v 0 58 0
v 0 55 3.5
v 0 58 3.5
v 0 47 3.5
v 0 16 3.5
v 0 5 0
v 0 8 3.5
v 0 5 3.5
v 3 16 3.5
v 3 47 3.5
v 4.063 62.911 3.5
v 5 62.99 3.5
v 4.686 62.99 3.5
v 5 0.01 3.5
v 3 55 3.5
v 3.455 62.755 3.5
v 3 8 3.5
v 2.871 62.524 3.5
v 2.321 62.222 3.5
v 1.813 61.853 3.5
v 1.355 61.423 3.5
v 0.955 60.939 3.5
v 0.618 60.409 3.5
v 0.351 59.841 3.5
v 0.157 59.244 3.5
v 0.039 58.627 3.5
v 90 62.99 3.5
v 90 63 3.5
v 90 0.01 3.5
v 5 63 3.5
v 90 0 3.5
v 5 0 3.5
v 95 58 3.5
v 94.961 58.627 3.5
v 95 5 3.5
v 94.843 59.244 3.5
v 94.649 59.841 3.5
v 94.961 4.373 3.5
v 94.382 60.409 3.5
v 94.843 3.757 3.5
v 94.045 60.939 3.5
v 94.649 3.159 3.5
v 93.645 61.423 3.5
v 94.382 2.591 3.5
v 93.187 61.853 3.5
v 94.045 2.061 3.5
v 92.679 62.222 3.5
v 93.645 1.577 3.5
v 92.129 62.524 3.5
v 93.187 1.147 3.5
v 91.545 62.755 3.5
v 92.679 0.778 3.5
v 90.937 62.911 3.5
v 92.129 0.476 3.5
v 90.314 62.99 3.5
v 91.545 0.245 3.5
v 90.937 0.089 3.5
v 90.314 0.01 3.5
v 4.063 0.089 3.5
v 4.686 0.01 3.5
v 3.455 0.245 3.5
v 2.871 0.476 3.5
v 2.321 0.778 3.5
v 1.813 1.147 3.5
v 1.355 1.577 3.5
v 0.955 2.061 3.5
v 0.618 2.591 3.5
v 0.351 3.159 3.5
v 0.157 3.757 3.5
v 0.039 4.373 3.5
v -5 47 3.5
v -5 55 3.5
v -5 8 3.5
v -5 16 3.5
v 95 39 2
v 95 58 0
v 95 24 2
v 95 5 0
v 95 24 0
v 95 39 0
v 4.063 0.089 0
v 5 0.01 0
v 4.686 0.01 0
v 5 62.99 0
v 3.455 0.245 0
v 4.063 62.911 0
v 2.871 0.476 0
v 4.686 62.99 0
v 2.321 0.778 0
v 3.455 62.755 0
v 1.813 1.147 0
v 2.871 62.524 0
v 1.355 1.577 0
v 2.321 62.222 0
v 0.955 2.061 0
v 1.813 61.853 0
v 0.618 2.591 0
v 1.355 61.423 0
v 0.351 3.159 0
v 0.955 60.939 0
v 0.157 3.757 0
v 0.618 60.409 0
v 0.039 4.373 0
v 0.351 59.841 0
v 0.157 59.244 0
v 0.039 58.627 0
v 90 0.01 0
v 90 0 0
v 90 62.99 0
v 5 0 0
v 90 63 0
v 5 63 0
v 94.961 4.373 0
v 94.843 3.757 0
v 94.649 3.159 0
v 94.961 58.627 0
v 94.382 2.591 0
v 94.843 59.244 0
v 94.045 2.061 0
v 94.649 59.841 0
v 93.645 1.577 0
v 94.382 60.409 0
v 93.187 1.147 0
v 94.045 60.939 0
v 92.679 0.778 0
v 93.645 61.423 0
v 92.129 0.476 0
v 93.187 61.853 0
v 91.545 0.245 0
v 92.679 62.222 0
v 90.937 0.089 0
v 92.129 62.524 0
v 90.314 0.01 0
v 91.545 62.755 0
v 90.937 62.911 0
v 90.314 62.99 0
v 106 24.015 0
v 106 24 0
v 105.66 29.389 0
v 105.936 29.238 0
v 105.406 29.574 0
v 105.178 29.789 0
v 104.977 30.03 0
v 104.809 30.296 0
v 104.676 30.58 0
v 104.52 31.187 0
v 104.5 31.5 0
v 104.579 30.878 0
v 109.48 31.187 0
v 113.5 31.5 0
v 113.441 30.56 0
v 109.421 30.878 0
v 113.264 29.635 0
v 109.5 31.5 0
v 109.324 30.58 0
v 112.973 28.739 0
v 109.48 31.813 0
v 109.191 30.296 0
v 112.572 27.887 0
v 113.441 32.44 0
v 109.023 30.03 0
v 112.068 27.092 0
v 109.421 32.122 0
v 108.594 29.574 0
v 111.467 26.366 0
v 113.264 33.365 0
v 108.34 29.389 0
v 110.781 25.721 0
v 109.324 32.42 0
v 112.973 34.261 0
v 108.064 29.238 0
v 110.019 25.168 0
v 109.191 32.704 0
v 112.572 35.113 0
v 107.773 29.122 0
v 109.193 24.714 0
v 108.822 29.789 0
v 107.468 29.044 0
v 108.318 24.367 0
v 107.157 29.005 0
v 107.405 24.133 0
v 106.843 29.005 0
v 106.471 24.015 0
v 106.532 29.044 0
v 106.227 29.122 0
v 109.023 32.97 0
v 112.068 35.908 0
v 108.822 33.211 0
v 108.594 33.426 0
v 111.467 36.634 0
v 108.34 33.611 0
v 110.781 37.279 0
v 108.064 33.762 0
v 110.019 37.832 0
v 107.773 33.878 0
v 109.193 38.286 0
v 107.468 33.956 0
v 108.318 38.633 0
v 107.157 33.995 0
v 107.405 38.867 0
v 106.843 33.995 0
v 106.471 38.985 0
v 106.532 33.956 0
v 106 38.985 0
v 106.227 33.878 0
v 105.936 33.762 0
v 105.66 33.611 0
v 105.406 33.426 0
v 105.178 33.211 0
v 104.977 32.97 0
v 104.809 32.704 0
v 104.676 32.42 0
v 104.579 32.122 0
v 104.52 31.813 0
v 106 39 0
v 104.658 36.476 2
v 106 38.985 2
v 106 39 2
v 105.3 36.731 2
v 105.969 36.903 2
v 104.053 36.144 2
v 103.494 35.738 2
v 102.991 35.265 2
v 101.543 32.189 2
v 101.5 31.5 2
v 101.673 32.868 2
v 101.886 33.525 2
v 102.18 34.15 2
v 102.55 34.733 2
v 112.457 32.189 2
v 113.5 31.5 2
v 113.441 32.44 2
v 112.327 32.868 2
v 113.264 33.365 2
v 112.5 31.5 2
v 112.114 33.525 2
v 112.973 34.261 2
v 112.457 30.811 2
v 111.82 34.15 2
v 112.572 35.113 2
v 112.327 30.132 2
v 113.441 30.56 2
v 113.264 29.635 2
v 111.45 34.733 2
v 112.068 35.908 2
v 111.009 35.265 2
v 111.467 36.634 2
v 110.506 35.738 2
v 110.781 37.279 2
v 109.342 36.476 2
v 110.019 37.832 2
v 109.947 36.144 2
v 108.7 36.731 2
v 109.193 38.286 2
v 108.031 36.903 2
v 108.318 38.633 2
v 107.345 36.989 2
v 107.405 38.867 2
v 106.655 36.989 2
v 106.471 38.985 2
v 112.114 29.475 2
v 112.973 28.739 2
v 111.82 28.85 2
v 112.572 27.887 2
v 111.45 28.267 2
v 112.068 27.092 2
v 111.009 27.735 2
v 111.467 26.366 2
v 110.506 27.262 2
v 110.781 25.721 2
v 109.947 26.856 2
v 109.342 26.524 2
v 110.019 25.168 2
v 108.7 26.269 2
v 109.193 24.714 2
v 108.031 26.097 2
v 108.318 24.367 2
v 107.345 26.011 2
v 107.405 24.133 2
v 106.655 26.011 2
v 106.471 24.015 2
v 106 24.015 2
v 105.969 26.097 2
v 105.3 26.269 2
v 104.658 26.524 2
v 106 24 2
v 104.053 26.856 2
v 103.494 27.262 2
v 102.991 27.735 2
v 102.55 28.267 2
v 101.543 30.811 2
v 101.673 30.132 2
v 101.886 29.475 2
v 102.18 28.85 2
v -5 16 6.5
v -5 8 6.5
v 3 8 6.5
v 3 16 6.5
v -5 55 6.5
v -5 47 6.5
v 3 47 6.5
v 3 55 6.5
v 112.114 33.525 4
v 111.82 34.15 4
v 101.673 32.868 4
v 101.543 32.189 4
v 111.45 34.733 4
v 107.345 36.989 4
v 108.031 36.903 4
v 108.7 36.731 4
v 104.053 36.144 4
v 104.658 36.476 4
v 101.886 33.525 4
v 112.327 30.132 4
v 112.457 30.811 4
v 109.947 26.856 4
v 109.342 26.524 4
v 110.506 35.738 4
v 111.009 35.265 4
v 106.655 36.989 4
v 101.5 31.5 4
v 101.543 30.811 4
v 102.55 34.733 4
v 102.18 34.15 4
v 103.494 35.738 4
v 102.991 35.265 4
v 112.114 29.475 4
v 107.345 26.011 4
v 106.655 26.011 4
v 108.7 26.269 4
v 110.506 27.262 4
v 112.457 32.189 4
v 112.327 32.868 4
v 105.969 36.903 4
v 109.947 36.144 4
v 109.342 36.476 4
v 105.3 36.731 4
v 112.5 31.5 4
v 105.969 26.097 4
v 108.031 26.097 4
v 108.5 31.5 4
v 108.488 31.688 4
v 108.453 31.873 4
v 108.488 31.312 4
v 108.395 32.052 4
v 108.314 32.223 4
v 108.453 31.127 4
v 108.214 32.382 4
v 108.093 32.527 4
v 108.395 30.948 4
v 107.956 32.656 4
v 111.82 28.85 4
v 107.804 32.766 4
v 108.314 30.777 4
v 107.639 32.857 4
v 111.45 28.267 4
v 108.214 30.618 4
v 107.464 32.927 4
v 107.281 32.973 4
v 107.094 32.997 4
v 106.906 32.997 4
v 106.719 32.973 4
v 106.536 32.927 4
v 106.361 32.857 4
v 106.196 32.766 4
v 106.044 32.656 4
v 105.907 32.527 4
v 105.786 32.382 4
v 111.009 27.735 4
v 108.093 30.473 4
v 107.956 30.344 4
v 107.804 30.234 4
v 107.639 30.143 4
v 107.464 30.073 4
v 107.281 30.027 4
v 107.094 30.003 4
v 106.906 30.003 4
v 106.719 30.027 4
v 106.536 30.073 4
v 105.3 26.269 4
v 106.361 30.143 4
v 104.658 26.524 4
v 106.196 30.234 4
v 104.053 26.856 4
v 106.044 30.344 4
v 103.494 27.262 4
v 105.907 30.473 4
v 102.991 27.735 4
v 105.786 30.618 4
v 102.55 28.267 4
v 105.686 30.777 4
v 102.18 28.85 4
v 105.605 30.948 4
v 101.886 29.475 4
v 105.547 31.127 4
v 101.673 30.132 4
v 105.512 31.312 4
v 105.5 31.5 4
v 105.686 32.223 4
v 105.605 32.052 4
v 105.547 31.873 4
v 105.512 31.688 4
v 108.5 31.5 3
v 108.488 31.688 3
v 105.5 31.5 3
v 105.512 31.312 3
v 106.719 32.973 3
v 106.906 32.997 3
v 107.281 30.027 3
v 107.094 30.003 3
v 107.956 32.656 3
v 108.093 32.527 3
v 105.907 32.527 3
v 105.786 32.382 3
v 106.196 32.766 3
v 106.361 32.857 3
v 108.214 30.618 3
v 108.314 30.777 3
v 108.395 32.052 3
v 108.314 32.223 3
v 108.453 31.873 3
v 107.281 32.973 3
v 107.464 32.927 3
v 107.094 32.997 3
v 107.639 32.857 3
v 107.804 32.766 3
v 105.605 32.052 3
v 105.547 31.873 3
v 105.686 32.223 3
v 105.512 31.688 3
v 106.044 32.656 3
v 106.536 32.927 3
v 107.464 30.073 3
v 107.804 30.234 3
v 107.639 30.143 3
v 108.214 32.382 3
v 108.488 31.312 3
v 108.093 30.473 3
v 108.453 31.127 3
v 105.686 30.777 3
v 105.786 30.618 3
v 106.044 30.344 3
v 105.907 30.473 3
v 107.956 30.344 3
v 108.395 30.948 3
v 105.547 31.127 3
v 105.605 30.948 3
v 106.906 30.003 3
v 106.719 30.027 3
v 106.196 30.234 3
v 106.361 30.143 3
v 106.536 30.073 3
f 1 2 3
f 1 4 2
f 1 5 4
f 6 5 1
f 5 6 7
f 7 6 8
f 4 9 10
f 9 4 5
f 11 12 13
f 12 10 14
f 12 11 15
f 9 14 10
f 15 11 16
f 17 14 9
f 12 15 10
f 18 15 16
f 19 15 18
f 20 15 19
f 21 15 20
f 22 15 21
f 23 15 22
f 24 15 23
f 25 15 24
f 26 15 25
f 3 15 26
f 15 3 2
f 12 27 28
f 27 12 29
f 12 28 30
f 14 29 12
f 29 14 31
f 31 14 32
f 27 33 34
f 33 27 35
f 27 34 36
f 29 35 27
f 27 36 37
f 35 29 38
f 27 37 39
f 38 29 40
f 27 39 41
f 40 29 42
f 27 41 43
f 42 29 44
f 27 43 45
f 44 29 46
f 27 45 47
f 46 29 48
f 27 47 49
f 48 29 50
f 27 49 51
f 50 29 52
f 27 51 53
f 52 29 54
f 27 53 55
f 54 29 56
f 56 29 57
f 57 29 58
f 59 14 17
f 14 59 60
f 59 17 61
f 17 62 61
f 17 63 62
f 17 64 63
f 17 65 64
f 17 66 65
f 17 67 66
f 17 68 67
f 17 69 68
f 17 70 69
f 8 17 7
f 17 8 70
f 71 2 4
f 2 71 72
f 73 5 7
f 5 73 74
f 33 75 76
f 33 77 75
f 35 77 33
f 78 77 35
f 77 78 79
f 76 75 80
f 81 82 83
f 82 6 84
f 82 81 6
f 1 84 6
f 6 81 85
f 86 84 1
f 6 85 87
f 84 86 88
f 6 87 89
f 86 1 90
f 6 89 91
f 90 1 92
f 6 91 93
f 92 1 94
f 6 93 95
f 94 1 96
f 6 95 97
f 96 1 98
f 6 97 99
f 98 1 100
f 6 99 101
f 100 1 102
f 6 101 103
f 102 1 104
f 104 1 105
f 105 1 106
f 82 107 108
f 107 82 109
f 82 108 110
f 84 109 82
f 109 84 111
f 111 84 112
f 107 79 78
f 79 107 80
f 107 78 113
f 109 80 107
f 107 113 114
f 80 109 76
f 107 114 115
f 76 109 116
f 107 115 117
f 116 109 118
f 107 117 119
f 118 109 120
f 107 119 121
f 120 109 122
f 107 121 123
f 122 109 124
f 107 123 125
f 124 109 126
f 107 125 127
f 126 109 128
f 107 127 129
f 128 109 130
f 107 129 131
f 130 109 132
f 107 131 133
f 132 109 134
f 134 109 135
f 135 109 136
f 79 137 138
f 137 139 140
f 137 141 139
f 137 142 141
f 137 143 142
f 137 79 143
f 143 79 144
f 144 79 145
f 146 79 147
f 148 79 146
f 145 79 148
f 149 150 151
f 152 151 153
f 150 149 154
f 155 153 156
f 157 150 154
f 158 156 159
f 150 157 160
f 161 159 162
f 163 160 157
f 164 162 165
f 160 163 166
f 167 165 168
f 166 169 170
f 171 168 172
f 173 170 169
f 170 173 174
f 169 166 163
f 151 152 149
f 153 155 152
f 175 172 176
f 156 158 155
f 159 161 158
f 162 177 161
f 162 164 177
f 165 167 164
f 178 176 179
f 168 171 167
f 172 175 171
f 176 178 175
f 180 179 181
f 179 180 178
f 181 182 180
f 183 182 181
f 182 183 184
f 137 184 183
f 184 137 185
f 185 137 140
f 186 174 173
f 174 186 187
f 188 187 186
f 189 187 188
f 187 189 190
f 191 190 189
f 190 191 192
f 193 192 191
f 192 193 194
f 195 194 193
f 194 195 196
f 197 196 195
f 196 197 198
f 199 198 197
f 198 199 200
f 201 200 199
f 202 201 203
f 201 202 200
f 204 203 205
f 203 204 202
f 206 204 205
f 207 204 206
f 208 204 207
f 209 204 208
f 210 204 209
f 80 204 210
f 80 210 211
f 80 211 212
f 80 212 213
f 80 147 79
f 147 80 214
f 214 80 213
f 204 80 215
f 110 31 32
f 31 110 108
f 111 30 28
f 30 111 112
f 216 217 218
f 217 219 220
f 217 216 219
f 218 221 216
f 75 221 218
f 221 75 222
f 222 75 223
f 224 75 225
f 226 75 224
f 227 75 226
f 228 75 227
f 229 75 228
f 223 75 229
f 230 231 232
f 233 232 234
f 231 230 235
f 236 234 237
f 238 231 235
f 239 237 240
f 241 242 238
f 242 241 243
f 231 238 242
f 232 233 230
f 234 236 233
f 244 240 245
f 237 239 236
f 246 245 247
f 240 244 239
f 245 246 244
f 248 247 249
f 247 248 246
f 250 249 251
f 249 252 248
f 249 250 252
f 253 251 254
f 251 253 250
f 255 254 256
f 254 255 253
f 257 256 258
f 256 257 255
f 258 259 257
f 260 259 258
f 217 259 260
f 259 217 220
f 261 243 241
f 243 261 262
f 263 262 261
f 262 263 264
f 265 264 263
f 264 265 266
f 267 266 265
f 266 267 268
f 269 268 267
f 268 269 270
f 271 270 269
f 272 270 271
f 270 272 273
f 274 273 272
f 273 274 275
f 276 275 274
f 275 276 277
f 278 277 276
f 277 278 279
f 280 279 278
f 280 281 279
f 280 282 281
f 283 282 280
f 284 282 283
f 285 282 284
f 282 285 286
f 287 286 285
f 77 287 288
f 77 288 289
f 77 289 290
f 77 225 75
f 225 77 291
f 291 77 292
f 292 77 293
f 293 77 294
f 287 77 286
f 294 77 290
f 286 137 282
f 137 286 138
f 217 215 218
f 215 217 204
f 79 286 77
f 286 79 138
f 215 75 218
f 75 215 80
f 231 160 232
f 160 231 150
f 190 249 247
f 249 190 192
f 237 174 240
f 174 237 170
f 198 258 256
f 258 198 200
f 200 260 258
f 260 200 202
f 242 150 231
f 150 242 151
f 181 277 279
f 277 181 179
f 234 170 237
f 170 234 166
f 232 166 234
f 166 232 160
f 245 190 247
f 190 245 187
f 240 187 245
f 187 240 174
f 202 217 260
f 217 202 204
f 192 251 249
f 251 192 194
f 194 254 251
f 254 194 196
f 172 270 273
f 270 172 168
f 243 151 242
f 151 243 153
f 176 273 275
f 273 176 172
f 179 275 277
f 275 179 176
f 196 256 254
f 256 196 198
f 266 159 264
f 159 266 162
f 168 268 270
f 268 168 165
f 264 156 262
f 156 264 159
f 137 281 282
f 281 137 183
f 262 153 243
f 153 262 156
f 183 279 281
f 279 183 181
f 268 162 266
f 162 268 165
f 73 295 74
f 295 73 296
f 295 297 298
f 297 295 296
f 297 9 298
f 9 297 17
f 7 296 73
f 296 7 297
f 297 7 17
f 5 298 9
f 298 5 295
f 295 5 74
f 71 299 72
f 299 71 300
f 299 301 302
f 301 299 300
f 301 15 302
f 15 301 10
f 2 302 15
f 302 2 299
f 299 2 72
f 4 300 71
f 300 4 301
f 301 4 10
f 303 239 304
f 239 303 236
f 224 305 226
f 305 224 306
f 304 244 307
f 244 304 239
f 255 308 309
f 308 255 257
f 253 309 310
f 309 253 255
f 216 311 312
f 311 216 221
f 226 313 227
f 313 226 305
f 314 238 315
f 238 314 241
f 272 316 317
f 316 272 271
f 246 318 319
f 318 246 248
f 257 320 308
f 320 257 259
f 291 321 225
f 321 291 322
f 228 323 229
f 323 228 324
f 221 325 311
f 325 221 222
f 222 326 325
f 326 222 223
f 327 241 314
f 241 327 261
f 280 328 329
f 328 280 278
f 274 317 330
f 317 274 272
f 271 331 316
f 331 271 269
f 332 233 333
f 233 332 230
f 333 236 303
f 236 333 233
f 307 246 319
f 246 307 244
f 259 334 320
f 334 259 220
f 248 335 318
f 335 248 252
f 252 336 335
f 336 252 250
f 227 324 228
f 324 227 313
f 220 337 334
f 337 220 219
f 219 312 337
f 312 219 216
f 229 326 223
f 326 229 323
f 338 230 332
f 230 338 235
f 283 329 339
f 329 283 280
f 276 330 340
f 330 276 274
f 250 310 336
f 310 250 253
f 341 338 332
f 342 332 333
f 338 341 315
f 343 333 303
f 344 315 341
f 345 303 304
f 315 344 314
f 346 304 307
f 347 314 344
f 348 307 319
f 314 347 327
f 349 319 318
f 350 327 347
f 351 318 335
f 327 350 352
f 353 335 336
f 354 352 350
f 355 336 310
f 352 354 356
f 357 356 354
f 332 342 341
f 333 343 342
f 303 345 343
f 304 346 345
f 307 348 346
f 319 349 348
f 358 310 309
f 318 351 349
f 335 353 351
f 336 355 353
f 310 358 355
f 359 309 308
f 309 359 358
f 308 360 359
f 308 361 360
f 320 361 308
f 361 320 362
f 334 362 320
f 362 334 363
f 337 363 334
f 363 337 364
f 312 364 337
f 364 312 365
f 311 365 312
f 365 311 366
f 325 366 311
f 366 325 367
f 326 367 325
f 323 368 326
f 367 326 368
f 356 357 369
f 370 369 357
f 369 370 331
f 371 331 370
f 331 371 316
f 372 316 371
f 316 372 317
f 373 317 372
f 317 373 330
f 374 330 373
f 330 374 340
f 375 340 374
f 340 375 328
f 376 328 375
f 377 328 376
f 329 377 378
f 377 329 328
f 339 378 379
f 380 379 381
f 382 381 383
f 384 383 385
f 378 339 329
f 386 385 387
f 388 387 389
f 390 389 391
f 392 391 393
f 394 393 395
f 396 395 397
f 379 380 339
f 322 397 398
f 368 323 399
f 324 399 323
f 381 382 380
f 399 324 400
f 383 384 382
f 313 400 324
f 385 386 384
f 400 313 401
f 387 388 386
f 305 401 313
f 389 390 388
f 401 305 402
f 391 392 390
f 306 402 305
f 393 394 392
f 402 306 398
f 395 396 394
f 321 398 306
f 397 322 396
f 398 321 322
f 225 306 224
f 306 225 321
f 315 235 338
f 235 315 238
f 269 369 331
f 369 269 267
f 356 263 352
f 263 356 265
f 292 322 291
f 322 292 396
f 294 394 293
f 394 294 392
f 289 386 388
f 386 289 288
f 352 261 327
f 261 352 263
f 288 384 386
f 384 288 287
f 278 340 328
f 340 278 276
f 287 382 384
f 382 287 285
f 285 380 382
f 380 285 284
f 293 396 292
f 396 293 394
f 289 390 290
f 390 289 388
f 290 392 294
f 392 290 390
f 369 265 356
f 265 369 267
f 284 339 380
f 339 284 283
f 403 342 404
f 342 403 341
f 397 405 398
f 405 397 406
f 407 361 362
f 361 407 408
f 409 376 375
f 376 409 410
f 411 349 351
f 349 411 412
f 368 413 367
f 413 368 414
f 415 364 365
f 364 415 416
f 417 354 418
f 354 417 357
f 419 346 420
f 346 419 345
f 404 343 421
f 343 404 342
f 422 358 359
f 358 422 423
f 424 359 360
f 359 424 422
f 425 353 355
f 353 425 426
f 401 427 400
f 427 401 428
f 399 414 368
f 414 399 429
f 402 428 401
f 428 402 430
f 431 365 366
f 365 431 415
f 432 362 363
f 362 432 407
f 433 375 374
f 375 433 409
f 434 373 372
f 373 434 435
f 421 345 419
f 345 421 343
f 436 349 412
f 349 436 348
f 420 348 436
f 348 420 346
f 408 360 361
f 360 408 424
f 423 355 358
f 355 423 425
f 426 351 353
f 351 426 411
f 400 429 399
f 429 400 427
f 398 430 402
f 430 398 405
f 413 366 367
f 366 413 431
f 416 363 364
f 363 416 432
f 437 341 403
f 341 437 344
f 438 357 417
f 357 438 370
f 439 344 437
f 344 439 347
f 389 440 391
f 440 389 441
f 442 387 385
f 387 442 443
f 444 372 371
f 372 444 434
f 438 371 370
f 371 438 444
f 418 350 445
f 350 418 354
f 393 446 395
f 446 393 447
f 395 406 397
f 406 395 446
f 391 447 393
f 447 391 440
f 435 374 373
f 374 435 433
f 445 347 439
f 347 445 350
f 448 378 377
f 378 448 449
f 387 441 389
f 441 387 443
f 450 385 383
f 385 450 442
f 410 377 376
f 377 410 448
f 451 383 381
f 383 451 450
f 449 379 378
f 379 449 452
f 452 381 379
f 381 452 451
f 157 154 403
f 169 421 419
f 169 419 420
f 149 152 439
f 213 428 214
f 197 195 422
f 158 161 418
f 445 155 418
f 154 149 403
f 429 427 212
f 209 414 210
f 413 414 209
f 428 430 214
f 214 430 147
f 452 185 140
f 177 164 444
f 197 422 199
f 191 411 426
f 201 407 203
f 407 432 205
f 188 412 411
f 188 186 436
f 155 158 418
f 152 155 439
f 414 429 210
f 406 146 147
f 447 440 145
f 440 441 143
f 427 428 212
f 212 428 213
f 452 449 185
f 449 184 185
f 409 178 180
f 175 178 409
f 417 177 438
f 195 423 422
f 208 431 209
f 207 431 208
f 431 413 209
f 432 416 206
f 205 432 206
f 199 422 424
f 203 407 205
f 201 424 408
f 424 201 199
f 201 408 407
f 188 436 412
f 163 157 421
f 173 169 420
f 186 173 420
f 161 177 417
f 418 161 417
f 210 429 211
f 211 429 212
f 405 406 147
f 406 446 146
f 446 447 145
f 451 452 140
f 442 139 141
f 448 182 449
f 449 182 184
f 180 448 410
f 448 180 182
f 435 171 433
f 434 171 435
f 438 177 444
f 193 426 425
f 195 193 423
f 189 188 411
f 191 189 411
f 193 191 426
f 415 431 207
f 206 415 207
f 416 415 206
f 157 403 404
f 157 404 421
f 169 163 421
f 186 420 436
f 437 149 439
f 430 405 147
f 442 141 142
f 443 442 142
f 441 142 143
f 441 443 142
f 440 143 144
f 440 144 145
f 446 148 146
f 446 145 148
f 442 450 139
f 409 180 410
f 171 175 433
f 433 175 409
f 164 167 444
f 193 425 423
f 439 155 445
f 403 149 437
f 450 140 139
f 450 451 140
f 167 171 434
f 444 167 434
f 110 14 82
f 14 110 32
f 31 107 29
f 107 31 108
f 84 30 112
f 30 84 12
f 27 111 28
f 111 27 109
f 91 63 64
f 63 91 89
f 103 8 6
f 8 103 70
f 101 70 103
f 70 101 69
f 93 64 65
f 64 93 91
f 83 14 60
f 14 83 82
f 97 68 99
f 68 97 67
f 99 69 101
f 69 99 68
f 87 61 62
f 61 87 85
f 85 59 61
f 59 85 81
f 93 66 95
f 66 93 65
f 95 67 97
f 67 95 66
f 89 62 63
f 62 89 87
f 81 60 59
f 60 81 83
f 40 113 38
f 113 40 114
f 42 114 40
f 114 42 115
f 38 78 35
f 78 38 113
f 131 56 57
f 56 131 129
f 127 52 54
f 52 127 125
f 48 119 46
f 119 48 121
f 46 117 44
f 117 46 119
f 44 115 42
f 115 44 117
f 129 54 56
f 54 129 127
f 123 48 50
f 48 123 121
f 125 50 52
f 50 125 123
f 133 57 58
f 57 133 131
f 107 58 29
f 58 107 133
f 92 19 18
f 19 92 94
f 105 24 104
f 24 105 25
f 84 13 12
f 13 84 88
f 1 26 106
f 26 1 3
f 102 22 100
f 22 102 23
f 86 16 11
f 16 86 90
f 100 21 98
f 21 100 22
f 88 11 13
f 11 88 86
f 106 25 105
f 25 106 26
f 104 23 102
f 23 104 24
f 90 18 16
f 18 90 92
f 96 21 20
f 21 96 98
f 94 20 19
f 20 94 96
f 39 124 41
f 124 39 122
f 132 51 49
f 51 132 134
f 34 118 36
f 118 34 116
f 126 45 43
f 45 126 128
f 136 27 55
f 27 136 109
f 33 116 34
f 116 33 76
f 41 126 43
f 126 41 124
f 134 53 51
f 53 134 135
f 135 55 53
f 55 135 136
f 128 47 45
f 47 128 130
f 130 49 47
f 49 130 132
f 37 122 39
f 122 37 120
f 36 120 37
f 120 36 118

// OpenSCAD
$fn=50;
difference() {
    union() {
        cube([95,63,3.5]);
        translate([95,24,0]) cube([11,15,2]);
        translate([106,31.5,0]) cylinder(2,15/2,15/2);
        translate([-5,8,3.5]) cube([8,8,3]);
        translate([-5,47,3.5]) cube([8,8,3]);
        translate([107,31.5,2]) cylinder(2,11/2,11/2);
    }
    translate([107,31.5,3]) cylinder(2,3/2,3/2);
    translate([107,31.5,0]) cylinder(3,5/2,3/2);
    cube([5,5,3.5]);
    translate([90,0,0])cube([5,5,3.5]);
    translate([0,58,0])cube([5,5,3.5]);
    translate([90,58,0])cube([5,5,3.5]);
}
translate([5,5,0])cylinder(3.5,10/2,10/2);
translate([90,5,0])cylinder(3.5,10/2,10/2);
translate([5,58,0])cylinder(3.5,10/2,10/2);
translate([90,58,0])cylinder(3.5,10/2,10/2);
